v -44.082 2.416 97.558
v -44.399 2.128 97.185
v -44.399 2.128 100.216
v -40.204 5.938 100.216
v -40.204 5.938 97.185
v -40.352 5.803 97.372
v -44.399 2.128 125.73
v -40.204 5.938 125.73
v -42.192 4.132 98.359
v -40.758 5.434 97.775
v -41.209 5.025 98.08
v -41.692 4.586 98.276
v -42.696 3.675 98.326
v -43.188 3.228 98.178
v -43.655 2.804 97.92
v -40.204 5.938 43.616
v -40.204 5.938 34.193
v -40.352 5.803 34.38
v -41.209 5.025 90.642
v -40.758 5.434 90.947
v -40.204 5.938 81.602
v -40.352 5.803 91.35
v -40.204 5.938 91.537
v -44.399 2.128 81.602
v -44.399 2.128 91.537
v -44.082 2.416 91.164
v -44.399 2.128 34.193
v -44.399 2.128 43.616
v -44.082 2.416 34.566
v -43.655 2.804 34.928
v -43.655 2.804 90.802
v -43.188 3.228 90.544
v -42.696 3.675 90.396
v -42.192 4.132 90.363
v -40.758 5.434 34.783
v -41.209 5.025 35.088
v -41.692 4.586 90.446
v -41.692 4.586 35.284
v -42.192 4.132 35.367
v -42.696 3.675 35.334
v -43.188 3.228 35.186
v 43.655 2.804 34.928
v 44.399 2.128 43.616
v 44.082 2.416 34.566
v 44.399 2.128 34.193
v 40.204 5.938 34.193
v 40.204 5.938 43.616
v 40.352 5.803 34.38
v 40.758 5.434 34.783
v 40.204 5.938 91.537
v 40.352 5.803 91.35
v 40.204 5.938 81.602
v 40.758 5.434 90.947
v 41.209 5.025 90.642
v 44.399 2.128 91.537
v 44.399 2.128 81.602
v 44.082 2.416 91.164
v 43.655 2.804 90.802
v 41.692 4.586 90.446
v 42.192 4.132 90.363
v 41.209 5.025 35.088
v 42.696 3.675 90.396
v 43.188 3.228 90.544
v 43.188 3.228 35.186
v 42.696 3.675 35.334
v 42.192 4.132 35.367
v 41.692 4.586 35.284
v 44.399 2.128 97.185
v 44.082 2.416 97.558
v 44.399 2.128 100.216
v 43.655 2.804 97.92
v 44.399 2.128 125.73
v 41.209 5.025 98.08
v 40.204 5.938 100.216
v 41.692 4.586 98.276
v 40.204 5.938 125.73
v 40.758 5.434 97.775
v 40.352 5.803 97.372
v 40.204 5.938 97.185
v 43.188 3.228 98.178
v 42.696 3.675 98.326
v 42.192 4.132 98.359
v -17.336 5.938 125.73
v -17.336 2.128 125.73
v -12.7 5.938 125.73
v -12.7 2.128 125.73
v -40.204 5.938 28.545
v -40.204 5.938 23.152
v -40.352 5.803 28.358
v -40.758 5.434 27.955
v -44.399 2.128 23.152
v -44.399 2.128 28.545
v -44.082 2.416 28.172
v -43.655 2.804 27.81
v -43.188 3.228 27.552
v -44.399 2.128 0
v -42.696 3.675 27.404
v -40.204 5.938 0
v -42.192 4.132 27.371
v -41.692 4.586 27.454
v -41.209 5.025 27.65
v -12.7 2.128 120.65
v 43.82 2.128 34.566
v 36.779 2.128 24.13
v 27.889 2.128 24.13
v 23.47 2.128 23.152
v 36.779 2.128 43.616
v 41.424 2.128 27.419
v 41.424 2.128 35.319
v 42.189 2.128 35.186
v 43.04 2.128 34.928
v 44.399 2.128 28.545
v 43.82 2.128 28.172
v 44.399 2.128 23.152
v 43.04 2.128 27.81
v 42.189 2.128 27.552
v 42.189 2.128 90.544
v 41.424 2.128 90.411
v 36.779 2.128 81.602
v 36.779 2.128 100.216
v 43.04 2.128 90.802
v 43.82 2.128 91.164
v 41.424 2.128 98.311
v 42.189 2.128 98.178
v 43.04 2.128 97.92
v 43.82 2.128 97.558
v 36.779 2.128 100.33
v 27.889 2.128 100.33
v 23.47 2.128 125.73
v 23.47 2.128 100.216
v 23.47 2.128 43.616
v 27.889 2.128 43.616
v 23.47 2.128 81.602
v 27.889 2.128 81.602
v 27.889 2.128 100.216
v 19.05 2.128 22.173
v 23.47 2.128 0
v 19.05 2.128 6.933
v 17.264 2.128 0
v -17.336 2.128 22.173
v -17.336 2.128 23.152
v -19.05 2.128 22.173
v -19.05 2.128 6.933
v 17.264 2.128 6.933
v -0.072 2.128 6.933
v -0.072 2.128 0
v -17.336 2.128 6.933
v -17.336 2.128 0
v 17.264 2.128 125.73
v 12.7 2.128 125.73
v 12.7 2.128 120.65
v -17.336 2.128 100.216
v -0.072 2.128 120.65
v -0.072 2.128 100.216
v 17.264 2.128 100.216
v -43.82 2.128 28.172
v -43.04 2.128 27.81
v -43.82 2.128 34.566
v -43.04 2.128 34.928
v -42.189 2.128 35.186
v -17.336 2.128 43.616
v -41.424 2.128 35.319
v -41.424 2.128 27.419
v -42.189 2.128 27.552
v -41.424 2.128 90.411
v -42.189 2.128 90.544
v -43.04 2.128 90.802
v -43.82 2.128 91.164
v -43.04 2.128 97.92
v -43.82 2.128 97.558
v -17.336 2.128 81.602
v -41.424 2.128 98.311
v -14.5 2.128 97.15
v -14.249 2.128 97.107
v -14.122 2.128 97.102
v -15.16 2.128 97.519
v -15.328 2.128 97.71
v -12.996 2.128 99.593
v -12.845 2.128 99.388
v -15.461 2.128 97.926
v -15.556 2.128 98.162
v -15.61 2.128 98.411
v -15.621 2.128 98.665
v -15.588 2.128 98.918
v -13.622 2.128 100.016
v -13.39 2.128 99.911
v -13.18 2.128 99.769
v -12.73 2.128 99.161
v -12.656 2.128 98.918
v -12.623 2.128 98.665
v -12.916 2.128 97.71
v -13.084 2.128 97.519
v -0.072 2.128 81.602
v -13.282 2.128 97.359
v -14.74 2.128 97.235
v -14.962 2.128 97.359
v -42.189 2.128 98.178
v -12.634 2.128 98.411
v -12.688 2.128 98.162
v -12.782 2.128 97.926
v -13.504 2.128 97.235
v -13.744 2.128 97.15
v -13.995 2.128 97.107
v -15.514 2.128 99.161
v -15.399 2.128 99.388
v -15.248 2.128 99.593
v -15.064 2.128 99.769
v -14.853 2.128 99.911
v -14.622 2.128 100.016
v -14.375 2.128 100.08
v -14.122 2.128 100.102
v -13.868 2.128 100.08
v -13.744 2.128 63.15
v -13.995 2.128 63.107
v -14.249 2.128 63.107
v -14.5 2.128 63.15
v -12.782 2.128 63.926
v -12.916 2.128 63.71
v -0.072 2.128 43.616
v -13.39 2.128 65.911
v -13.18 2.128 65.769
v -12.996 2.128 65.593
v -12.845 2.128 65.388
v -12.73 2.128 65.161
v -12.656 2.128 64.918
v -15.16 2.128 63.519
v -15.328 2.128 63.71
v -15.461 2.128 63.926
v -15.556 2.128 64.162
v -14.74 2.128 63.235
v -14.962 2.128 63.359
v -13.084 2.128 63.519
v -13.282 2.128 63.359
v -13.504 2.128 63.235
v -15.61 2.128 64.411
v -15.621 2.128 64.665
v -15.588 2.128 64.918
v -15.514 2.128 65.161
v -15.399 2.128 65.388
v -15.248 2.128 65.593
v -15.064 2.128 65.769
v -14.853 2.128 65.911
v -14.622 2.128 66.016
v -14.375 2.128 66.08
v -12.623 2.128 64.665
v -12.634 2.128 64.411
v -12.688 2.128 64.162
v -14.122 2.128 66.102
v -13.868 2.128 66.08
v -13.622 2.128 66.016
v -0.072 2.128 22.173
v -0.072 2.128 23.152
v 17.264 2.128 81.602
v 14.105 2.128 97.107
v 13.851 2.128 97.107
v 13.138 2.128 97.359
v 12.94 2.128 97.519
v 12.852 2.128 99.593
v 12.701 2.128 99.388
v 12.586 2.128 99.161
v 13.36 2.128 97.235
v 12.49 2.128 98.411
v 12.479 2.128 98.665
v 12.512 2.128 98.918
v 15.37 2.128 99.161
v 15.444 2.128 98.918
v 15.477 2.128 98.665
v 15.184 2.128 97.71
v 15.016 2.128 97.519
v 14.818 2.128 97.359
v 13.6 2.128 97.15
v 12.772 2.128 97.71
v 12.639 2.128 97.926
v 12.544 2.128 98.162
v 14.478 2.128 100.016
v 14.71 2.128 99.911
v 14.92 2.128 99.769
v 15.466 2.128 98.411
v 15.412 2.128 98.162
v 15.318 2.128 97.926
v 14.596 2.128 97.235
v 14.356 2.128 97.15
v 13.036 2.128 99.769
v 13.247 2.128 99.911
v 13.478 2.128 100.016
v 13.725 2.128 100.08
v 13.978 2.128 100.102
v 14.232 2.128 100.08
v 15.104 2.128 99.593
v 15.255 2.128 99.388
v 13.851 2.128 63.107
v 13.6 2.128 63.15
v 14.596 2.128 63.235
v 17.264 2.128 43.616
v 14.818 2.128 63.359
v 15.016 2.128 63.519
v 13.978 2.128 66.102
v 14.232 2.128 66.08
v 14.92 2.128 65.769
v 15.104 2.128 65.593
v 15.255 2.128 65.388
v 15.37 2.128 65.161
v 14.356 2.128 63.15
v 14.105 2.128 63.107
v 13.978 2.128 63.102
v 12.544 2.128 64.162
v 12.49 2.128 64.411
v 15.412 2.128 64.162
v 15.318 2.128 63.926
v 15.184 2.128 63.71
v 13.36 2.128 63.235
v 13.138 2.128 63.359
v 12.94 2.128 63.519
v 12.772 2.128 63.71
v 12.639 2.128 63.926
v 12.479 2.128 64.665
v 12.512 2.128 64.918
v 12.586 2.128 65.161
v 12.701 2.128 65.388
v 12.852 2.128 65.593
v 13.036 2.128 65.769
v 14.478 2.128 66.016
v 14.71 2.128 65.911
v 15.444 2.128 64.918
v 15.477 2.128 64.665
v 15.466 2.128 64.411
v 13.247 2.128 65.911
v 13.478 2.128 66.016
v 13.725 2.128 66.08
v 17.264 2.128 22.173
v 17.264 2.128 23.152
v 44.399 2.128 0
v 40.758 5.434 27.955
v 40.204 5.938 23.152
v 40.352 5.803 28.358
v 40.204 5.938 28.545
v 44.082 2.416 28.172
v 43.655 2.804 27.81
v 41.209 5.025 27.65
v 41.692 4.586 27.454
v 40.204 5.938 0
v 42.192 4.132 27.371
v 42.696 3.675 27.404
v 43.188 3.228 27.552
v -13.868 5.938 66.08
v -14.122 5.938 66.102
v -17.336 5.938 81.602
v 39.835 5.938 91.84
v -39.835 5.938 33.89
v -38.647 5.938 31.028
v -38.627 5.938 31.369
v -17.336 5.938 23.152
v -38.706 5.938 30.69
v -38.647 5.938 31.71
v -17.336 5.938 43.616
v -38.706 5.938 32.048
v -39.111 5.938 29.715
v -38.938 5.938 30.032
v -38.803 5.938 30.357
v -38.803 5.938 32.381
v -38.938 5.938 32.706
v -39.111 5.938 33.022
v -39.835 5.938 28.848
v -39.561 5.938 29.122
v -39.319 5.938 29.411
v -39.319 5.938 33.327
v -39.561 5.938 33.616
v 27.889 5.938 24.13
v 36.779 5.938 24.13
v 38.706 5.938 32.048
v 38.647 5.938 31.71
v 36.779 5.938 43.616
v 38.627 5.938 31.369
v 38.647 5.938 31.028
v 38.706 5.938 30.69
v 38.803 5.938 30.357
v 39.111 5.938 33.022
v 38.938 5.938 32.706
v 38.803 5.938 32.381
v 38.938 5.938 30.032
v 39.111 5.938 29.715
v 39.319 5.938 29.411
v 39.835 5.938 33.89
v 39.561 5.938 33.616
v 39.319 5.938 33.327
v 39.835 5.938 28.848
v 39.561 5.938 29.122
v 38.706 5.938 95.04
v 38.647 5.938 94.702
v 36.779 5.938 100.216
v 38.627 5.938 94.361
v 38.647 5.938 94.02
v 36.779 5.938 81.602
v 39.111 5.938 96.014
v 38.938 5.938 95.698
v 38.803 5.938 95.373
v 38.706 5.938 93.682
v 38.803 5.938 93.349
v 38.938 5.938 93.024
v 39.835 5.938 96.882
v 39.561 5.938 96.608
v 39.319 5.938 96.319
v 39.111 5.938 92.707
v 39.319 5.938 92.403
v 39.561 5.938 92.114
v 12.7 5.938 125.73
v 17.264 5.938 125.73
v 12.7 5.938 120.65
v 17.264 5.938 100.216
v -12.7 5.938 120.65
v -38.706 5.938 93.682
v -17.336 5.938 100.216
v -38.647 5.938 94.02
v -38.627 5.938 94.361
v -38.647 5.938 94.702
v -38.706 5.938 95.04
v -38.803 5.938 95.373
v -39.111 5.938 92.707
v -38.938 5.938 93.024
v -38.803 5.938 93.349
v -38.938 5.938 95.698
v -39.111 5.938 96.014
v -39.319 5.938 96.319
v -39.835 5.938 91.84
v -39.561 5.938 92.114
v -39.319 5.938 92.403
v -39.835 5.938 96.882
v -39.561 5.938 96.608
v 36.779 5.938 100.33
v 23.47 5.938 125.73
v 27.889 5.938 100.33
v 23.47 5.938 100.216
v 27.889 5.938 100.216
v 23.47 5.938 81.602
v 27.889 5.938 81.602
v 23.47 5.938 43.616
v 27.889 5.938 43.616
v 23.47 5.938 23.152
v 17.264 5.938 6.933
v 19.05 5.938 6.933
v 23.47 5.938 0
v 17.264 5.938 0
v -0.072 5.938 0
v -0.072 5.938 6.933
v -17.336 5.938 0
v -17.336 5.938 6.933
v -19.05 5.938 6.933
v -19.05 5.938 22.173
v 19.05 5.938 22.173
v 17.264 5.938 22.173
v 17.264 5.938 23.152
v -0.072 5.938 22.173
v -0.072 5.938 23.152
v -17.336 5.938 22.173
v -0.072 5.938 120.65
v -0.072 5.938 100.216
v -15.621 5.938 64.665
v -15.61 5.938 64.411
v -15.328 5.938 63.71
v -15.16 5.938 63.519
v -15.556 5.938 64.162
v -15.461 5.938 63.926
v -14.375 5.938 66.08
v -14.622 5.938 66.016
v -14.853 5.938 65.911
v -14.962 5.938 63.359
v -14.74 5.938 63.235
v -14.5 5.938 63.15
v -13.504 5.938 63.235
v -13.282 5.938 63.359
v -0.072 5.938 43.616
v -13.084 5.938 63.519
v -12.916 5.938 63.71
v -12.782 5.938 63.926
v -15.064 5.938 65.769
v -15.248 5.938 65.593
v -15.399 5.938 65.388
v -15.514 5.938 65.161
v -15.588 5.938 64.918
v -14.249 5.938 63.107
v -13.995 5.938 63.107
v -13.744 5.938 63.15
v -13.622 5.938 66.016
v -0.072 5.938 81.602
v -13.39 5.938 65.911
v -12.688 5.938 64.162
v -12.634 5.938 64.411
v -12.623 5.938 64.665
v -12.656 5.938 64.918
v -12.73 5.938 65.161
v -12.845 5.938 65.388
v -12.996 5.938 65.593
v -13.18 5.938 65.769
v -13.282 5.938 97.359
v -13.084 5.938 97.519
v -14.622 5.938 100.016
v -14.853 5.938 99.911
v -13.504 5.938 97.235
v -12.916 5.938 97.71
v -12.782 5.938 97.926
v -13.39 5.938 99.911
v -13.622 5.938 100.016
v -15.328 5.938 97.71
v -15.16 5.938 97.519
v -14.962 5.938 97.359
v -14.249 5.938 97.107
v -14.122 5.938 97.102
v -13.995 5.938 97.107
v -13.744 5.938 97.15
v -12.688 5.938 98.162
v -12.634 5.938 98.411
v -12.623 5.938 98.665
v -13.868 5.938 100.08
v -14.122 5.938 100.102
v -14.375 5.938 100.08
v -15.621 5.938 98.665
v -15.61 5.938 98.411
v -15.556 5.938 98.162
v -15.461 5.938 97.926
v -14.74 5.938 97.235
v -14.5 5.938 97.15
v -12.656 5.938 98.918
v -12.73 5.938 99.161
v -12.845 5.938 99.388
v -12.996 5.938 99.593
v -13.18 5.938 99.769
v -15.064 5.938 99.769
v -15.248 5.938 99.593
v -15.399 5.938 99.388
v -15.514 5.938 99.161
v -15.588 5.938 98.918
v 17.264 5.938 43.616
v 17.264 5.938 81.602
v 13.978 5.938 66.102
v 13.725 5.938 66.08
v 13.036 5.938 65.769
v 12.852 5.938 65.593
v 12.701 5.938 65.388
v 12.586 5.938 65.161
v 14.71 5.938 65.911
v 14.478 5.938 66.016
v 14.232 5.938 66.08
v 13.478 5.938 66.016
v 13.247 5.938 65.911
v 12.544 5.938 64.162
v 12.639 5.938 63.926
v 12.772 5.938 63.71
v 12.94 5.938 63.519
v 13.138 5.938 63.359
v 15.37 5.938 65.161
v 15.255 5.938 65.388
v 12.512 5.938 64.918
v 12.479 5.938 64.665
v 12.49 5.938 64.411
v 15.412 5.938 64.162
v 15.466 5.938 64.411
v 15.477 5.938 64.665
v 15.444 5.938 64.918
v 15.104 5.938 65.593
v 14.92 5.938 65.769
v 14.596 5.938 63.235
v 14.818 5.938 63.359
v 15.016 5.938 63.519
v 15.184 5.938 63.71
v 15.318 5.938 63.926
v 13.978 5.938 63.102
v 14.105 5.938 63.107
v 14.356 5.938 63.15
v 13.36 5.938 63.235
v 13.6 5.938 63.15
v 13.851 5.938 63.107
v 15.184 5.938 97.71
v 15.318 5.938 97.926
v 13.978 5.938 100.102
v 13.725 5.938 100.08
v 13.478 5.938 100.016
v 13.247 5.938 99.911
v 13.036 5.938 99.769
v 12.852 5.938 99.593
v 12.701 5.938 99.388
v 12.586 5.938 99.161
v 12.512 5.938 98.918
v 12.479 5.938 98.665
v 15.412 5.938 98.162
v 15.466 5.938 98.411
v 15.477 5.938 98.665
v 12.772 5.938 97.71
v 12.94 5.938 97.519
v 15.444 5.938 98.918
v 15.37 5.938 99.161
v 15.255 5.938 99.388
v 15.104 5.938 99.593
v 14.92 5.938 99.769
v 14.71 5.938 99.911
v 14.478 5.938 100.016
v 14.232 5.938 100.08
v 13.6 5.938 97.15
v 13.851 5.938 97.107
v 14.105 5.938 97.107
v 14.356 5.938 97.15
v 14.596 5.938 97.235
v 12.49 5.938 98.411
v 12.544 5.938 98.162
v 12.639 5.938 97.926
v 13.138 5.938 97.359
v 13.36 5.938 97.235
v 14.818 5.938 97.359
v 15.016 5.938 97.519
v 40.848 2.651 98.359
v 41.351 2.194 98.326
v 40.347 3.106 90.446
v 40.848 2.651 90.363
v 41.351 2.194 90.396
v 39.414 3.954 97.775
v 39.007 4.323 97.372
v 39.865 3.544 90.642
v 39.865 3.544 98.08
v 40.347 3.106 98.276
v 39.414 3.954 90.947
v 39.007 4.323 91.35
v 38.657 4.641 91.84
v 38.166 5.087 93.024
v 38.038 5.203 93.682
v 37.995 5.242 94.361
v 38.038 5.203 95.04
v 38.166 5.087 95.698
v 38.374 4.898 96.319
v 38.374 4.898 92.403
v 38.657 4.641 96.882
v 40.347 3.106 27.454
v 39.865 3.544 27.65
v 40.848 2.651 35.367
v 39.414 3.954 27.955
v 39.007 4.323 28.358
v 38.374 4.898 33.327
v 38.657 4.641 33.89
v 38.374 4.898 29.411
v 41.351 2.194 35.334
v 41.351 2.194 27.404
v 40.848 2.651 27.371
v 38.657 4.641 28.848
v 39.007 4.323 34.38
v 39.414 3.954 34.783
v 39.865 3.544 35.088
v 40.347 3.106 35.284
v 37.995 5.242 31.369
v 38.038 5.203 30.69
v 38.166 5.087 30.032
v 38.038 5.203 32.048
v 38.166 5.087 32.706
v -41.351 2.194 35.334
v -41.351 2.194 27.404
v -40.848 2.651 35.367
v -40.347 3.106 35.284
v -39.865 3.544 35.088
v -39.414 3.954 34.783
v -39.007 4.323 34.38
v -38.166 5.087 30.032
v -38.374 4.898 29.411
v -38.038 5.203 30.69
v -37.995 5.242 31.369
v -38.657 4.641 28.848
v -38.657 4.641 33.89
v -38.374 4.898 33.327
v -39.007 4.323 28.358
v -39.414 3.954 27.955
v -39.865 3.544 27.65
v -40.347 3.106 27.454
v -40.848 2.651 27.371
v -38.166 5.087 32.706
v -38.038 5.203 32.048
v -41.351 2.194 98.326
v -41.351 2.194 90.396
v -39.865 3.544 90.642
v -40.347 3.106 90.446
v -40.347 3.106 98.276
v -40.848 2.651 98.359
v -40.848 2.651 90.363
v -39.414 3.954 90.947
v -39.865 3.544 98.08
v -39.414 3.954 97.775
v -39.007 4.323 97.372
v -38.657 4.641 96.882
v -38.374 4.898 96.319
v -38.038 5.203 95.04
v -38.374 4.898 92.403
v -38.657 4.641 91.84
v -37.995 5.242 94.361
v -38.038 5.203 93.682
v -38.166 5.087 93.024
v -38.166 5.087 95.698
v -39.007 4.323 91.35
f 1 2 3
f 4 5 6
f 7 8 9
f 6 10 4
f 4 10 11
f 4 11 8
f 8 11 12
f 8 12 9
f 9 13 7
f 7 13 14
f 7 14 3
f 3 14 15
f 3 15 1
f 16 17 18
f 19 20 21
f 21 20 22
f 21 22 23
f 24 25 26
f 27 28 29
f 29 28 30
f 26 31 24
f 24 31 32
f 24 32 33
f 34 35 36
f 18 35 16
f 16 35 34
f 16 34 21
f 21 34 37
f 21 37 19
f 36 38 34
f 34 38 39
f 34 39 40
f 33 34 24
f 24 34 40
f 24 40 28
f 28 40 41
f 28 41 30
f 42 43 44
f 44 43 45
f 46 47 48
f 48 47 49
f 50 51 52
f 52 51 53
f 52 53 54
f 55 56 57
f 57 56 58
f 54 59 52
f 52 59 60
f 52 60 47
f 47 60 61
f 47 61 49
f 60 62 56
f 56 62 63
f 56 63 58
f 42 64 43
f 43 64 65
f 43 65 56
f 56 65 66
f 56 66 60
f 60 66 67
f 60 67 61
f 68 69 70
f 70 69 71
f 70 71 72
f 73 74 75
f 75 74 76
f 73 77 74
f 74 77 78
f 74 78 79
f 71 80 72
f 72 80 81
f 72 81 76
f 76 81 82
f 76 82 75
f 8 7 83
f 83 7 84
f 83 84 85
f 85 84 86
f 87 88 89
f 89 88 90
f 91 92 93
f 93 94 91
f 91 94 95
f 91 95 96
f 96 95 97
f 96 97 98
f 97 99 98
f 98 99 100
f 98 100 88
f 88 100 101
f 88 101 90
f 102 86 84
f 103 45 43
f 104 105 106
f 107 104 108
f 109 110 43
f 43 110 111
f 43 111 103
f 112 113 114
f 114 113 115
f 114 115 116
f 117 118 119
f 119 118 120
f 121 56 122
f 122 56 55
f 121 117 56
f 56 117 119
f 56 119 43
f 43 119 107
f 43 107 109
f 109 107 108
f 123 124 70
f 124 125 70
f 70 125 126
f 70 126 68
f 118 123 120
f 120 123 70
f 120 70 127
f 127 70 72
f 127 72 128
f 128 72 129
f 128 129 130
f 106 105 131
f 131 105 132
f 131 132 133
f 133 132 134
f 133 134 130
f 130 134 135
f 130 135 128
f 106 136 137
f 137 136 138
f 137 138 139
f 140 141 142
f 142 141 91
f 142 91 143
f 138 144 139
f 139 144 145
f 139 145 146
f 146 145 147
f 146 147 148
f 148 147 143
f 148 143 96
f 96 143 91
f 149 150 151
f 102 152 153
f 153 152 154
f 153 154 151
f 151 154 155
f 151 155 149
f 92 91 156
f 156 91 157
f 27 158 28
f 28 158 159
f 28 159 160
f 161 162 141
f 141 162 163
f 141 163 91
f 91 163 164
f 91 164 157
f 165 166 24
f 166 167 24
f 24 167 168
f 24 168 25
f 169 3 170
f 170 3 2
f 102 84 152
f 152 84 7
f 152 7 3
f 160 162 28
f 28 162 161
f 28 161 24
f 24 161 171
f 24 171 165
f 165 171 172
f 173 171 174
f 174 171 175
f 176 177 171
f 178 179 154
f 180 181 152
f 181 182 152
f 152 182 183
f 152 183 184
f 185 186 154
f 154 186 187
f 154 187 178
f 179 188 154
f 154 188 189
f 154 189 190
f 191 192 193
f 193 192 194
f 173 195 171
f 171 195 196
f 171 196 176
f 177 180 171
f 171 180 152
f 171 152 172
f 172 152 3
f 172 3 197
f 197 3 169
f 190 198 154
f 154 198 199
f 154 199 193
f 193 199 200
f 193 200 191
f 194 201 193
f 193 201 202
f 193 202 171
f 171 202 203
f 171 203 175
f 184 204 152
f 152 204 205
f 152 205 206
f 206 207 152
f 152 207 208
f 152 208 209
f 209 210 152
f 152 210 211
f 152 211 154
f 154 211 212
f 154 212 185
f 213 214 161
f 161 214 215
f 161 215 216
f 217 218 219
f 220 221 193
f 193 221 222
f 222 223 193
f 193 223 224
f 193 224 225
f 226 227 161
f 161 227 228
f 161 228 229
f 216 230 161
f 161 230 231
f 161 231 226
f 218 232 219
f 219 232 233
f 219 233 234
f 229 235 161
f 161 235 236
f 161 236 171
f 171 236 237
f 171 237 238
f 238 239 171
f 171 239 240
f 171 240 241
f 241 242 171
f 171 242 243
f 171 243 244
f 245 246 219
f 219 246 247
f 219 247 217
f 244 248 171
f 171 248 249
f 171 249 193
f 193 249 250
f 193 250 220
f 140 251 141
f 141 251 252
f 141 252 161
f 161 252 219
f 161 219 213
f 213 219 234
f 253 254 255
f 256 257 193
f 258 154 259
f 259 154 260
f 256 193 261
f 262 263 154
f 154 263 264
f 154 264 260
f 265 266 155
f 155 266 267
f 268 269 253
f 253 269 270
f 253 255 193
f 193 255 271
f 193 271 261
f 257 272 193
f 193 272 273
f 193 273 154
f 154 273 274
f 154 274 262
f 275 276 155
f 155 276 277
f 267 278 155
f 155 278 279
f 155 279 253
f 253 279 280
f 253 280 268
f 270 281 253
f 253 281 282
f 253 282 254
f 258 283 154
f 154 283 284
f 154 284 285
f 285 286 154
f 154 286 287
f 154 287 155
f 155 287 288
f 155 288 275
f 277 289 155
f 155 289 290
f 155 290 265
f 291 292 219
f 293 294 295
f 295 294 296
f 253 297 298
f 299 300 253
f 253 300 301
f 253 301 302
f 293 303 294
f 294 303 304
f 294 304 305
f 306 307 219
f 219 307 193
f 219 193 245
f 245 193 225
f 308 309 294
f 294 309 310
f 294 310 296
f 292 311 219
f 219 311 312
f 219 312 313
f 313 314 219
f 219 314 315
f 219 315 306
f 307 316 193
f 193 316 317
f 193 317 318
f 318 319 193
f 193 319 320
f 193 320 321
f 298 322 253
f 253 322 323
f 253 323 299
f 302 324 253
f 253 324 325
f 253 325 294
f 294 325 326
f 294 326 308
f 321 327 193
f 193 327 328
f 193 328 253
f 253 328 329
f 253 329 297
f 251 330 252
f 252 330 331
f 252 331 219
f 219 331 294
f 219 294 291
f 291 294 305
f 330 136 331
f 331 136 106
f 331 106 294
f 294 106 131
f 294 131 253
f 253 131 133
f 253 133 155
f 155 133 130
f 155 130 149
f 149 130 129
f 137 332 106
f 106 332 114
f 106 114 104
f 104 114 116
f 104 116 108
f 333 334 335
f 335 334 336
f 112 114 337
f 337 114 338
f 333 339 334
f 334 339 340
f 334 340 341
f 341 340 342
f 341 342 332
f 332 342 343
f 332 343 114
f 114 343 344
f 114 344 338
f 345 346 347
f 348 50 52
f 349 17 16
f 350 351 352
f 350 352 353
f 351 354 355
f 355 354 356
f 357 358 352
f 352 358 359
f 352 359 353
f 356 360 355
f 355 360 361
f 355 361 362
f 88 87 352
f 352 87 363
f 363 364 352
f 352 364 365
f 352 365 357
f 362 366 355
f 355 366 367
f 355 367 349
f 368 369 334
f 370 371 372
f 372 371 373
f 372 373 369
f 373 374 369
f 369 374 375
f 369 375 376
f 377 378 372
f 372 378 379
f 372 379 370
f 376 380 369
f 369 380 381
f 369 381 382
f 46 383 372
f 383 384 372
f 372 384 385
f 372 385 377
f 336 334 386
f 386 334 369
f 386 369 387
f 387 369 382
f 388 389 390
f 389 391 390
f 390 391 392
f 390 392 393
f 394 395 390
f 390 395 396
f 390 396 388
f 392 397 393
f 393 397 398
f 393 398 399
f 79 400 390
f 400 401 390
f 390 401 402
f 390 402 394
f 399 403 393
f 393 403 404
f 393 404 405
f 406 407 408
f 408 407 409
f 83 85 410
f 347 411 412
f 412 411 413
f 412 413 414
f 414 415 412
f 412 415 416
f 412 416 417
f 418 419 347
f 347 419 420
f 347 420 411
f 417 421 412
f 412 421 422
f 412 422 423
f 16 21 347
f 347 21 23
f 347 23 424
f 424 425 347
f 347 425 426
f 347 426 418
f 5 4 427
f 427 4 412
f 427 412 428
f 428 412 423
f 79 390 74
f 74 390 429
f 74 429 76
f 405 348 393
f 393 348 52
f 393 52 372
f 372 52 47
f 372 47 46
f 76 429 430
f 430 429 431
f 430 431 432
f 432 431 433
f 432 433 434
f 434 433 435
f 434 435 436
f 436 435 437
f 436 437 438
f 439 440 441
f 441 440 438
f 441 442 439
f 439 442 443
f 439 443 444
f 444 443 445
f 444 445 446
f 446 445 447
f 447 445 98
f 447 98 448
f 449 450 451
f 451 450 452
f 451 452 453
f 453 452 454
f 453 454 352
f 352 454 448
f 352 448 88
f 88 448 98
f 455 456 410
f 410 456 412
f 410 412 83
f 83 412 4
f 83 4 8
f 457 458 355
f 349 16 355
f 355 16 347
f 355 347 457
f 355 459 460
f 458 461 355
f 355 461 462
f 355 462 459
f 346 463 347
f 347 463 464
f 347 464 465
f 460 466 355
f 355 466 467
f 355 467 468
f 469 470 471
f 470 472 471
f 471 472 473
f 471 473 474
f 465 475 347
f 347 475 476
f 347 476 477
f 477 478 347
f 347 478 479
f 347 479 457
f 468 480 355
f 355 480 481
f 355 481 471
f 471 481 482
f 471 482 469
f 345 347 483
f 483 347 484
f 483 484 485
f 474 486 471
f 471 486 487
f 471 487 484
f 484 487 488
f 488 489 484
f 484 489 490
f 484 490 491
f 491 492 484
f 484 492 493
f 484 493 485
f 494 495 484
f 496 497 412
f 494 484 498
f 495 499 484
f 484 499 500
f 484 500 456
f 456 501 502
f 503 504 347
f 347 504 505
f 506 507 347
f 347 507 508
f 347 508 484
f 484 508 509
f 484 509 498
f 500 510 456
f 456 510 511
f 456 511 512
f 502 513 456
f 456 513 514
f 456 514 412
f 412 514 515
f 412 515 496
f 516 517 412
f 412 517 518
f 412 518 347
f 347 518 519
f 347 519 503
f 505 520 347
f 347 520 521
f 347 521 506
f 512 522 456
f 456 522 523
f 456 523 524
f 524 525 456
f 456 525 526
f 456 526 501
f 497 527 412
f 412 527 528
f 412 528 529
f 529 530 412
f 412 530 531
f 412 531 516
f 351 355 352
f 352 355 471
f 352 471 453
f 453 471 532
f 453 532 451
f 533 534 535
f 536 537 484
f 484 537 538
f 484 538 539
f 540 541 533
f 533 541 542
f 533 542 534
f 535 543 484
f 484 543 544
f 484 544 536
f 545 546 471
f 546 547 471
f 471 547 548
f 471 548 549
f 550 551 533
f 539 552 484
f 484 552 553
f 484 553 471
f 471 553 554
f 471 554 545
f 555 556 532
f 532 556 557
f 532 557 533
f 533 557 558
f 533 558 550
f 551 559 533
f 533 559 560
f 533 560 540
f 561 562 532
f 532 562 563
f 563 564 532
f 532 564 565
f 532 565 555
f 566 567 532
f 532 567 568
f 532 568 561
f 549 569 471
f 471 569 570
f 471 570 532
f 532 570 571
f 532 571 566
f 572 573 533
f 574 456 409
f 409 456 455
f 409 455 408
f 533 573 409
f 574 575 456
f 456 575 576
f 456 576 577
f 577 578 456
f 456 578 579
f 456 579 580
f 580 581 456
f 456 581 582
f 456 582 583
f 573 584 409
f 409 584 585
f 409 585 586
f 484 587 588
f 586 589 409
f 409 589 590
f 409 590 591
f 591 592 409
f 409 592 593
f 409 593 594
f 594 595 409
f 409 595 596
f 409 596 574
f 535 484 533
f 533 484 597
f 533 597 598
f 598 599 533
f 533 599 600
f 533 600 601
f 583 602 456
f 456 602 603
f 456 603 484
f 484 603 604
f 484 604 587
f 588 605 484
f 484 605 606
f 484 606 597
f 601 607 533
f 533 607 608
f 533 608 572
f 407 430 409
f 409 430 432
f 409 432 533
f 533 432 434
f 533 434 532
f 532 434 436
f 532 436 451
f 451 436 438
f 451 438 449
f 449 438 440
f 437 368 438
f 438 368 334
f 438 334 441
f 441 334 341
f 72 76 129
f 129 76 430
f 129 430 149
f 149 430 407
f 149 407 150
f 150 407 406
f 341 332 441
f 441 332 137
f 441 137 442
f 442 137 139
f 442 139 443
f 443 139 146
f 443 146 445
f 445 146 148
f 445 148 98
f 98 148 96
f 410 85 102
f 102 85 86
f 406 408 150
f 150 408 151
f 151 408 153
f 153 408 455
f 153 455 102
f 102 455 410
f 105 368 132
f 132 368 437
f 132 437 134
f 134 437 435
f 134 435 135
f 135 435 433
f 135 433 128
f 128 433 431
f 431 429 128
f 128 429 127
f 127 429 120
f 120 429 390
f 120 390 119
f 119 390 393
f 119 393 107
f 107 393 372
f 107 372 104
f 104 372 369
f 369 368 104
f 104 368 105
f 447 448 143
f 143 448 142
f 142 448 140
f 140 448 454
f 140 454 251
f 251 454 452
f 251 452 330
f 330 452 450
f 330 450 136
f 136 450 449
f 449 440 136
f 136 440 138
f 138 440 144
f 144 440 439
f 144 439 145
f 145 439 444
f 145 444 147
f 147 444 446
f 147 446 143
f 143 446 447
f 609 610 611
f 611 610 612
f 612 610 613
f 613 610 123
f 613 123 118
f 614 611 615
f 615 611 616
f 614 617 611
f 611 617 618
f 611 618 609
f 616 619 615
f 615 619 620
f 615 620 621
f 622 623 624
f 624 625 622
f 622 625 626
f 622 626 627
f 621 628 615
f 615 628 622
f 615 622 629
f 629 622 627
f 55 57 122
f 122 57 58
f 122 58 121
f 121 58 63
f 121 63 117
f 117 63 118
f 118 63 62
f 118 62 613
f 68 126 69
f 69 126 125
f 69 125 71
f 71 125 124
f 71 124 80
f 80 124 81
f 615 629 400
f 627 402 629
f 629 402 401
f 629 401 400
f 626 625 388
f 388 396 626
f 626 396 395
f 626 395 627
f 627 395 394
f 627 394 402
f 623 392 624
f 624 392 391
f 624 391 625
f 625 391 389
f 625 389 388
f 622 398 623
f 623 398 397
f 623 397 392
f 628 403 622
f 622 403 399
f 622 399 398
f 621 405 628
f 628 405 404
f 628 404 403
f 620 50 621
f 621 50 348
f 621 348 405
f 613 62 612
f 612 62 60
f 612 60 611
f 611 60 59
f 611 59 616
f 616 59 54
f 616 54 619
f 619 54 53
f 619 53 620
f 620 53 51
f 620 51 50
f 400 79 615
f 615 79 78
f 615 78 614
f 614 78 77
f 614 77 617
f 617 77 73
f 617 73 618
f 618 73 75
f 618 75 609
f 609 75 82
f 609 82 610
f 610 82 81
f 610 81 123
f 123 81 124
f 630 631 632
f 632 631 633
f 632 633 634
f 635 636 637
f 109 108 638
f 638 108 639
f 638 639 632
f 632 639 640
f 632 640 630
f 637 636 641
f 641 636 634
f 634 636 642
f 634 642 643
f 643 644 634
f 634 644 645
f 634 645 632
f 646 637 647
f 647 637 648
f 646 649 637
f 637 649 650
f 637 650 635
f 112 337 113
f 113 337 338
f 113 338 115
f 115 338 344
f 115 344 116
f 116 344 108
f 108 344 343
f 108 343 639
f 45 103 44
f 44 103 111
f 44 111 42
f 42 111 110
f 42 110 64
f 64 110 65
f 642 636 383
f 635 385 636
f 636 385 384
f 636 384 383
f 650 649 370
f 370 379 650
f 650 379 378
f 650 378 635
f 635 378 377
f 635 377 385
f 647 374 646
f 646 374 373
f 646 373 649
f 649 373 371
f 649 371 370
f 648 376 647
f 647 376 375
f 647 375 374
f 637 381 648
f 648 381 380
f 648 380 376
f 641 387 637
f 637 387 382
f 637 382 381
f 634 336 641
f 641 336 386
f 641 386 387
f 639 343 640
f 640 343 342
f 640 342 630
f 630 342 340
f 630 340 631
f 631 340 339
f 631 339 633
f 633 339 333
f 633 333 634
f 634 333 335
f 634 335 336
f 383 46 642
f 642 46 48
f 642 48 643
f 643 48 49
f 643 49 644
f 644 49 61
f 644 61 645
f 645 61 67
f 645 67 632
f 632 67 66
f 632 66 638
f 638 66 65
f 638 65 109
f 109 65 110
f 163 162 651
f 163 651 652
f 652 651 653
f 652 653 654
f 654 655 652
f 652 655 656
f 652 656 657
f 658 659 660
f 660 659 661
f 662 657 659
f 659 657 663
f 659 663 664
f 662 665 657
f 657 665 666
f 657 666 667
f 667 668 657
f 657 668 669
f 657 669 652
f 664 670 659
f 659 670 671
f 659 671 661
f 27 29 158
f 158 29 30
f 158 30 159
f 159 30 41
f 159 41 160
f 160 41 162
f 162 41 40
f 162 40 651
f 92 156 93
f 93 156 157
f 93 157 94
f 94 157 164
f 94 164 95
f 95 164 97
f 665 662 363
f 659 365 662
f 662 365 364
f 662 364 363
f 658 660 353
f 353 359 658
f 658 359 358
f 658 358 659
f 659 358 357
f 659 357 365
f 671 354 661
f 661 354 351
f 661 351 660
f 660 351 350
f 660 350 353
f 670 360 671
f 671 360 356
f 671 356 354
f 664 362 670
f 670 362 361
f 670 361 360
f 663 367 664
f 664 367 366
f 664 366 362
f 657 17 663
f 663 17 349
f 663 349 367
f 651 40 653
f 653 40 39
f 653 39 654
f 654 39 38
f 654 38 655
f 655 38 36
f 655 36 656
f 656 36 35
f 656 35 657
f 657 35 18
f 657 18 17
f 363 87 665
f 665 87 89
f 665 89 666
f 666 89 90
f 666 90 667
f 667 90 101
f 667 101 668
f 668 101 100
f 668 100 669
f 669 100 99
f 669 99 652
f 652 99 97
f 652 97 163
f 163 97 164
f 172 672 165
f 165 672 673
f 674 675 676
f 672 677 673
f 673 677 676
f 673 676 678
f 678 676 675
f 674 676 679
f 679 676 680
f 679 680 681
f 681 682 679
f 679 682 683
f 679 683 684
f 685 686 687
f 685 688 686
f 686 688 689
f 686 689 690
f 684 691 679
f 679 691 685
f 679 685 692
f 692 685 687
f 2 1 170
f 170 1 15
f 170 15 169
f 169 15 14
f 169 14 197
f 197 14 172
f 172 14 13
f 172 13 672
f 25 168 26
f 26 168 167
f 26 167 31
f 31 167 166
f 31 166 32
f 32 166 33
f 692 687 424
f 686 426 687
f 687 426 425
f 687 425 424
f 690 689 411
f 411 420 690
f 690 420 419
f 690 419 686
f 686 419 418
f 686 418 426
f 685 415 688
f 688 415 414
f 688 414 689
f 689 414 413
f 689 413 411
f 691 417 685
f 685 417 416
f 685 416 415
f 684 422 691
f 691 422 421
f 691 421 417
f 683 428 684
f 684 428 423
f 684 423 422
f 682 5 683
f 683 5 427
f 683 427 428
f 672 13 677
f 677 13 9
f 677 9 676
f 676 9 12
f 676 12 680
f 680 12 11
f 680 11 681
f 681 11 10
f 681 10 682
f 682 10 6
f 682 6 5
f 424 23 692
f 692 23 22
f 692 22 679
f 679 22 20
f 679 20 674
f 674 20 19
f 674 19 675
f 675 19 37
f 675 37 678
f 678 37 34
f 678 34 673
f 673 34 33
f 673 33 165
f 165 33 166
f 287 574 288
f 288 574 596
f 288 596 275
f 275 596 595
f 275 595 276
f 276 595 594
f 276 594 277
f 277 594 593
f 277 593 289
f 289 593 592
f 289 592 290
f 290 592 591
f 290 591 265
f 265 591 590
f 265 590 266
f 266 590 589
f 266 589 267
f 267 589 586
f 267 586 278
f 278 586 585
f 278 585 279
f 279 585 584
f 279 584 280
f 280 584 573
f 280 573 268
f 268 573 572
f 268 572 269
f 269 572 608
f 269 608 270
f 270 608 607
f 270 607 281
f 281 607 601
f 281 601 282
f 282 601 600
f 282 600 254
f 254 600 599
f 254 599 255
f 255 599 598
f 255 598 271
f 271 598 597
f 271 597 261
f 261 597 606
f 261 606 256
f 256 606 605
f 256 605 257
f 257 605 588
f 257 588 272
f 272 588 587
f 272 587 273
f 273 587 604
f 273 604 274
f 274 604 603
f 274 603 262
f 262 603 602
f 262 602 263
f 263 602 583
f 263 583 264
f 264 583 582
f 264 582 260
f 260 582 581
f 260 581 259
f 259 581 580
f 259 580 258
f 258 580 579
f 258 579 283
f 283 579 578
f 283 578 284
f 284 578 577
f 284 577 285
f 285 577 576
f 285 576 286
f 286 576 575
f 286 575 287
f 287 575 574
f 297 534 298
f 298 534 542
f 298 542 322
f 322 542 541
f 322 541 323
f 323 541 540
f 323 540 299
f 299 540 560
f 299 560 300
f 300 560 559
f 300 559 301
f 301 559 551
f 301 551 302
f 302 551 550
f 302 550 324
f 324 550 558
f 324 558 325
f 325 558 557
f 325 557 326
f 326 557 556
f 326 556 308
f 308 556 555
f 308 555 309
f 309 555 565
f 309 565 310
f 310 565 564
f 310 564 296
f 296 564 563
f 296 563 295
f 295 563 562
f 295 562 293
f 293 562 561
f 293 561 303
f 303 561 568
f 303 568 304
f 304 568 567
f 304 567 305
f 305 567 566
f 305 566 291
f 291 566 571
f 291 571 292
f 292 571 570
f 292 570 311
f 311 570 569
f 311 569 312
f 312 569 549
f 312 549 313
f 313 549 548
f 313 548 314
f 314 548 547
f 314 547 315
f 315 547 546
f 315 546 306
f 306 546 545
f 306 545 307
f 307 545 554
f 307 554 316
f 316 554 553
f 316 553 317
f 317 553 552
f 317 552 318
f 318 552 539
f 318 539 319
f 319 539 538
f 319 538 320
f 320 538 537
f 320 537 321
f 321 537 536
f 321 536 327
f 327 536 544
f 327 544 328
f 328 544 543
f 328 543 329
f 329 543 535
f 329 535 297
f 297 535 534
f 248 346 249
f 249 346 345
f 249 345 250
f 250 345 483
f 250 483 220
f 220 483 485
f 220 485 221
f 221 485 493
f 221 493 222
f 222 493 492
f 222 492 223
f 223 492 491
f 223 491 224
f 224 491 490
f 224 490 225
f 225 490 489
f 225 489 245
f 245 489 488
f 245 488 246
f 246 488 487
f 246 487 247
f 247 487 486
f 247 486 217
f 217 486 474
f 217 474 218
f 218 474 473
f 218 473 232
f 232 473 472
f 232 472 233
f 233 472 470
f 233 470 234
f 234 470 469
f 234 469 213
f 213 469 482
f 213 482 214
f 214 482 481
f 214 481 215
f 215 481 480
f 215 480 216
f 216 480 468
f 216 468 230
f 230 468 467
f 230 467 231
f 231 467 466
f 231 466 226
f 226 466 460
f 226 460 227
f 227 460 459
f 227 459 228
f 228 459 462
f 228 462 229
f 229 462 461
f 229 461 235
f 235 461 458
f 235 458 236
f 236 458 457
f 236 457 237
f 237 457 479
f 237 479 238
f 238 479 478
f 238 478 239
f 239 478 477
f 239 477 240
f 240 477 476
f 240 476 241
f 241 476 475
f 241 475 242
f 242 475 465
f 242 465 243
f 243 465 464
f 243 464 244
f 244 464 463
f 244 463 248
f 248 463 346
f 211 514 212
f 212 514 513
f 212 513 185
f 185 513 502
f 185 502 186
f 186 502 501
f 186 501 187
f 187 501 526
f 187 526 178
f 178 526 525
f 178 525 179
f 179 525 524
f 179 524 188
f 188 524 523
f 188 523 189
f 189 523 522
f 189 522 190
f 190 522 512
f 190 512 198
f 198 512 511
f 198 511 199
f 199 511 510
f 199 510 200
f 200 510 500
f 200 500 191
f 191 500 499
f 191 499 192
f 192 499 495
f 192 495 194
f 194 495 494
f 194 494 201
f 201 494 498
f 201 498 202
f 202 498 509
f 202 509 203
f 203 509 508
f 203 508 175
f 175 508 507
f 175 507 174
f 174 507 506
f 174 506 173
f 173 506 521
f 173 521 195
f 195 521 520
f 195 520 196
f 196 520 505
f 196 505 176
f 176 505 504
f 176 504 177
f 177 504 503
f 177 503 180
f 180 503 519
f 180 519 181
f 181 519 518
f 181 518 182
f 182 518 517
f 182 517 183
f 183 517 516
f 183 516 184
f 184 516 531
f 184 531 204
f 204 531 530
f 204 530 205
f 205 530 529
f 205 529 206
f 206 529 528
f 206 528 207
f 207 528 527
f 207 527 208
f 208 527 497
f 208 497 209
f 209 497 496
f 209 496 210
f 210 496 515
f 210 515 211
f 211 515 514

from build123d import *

# Parameters (mm, degrees)
BOSS_EXTRUDE1_DEPTH = 125.73
SKETCH3_W           = 25.4
SKETCH3_H           = 5.08
CUT_EXTRUDE1_DEPTH  = 134.393493158
SKETCH5_W           = 8.89
SKETCH5_H           = 76.2
CUT_EXTRUDE3_DEPTH  = 134.393493158
SKETCH6_W           = 38.1
SKETCH6_H           = 15.24
CUT_EXTRUDE4_DEPTH  = 134.393493158
SKETCH7_R           = 4.0005
CUT_EXTRUDE5_DEPTH  = 2
SKETCH8_R           = 4.0005
CUT_EXTRUDE6_DEPTH  = 2
SKETCH9_R           = 1.5
CUT_EXTRUDE8_DEPTH  = 134.393493158


with BuildPart() as part:
    # Sketch1 → Boss-Extrude1 (new body)
    with BuildSketch(Plane.XY):
        Polygon((-40.203883769, 5.937788296), (40.203883769, 5.937788296), (44.399042974, 2.127788296), (-44.399042974, 2.127788296), align=None)
    extrude(amount=BOSS_EXTRUDE1_DEPTH)

    # Sketch3 → Cut-Extrude1 (cut, through all)
    with BuildSketch(Plane.XZ.offset(-2.127788296)):
        with Locations((0, 123.19)):
            Rectangle(SKETCH3_W, SKETCH3_H)
    extrude(amount=-CUT_EXTRUDE1_DEPTH, mode=Mode.SUBTRACT)

    # Sketch5 → Cut-Extrude3 (cut, through all)
    with BuildSketch(Plane.XZ.offset(-2.127788296)):
        with Locations((32.334042974, 62.23)):
            Rectangle(SKETCH5_W, SKETCH5_H)
    extrude(amount=-CUT_EXTRUDE3_DEPTH, mode=Mode.SUBTRACT)

    # Sketch6 → Cut-Extrude4 (cut, through all)
    with BuildSketch(Plane.XZ.offset(-2.127788296)):
        with Locations((0, 14.553010533)):
            Rectangle(SKETCH6_W, SKETCH6_H)
    extrude(amount=-CUT_EXTRUDE4_DEPTH, mode=Mode.SUBTRACT)

    # Sketch7 → Cut-Extrude5 (cut)
    with BuildSketch(Plane(origin=(21.127225221, 23.263011377, 0), x_dir=(0.7402720771062569, -0.6723074087475075, 0), z_dir=(0.6723074087475075, 0.7402720771062569, 0))):
        with Locations((28.603318705, -94.361)):
            Circle(SKETCH7_R)
        with Locations((28.603318705, -31.369)):
            Circle(SKETCH7_R)
    extrude(amount=-CUT_EXTRUDE5_DEPTH, mode=Mode.SUBTRACT)

    # Sketch8 → Cut-Extrude6 (cut)
    with BuildSketch(Plane(origin=(-21.127225221, 23.263011377, 0), x_dir=(0.7402720771062569, 0.6723074087475075, 0), z_dir=(-0.6723074087475075, 0.7402720771062569, 0))):
        with Locations((-28.603318705, -31.369)):
            Circle(SKETCH8_R)
        with Locations((-28.603318705, -94.361)):
            Circle(SKETCH8_R)
    extrude(amount=-CUT_EXTRUDE6_DEPTH, mode=Mode.SUBTRACT)

    # Sketch9 → Cut-Extrude8 (cut, through all)
    with BuildSketch(Plane(origin=(0, 5.937788296, 0), x_dir=(1, 0, 0), z_dir=(0, 1, 0))):
        with Locations(Location((13.978116231, -98.601597848, 0), (0, 0, 270))):
            Circle(SKETCH9_R)
        with Locations(Location((-14.121883769, -98.601597848, 0), (0, 0, 270))):
            Circle(SKETCH9_R)
        with Locations(Location((-14.121883769, -64.601597848, 0), (0, 0, 270))):
            Circle(SKETCH9_R)
        with Locations(Location((13.978116231, -64.601597848, 0), (0, 0, 270))):
            Circle(SKETCH9_R)
    extrude(amount=-CUT_EXTRUDE8_DEPTH, mode=Mode.SUBTRACT)


solid = part.part
